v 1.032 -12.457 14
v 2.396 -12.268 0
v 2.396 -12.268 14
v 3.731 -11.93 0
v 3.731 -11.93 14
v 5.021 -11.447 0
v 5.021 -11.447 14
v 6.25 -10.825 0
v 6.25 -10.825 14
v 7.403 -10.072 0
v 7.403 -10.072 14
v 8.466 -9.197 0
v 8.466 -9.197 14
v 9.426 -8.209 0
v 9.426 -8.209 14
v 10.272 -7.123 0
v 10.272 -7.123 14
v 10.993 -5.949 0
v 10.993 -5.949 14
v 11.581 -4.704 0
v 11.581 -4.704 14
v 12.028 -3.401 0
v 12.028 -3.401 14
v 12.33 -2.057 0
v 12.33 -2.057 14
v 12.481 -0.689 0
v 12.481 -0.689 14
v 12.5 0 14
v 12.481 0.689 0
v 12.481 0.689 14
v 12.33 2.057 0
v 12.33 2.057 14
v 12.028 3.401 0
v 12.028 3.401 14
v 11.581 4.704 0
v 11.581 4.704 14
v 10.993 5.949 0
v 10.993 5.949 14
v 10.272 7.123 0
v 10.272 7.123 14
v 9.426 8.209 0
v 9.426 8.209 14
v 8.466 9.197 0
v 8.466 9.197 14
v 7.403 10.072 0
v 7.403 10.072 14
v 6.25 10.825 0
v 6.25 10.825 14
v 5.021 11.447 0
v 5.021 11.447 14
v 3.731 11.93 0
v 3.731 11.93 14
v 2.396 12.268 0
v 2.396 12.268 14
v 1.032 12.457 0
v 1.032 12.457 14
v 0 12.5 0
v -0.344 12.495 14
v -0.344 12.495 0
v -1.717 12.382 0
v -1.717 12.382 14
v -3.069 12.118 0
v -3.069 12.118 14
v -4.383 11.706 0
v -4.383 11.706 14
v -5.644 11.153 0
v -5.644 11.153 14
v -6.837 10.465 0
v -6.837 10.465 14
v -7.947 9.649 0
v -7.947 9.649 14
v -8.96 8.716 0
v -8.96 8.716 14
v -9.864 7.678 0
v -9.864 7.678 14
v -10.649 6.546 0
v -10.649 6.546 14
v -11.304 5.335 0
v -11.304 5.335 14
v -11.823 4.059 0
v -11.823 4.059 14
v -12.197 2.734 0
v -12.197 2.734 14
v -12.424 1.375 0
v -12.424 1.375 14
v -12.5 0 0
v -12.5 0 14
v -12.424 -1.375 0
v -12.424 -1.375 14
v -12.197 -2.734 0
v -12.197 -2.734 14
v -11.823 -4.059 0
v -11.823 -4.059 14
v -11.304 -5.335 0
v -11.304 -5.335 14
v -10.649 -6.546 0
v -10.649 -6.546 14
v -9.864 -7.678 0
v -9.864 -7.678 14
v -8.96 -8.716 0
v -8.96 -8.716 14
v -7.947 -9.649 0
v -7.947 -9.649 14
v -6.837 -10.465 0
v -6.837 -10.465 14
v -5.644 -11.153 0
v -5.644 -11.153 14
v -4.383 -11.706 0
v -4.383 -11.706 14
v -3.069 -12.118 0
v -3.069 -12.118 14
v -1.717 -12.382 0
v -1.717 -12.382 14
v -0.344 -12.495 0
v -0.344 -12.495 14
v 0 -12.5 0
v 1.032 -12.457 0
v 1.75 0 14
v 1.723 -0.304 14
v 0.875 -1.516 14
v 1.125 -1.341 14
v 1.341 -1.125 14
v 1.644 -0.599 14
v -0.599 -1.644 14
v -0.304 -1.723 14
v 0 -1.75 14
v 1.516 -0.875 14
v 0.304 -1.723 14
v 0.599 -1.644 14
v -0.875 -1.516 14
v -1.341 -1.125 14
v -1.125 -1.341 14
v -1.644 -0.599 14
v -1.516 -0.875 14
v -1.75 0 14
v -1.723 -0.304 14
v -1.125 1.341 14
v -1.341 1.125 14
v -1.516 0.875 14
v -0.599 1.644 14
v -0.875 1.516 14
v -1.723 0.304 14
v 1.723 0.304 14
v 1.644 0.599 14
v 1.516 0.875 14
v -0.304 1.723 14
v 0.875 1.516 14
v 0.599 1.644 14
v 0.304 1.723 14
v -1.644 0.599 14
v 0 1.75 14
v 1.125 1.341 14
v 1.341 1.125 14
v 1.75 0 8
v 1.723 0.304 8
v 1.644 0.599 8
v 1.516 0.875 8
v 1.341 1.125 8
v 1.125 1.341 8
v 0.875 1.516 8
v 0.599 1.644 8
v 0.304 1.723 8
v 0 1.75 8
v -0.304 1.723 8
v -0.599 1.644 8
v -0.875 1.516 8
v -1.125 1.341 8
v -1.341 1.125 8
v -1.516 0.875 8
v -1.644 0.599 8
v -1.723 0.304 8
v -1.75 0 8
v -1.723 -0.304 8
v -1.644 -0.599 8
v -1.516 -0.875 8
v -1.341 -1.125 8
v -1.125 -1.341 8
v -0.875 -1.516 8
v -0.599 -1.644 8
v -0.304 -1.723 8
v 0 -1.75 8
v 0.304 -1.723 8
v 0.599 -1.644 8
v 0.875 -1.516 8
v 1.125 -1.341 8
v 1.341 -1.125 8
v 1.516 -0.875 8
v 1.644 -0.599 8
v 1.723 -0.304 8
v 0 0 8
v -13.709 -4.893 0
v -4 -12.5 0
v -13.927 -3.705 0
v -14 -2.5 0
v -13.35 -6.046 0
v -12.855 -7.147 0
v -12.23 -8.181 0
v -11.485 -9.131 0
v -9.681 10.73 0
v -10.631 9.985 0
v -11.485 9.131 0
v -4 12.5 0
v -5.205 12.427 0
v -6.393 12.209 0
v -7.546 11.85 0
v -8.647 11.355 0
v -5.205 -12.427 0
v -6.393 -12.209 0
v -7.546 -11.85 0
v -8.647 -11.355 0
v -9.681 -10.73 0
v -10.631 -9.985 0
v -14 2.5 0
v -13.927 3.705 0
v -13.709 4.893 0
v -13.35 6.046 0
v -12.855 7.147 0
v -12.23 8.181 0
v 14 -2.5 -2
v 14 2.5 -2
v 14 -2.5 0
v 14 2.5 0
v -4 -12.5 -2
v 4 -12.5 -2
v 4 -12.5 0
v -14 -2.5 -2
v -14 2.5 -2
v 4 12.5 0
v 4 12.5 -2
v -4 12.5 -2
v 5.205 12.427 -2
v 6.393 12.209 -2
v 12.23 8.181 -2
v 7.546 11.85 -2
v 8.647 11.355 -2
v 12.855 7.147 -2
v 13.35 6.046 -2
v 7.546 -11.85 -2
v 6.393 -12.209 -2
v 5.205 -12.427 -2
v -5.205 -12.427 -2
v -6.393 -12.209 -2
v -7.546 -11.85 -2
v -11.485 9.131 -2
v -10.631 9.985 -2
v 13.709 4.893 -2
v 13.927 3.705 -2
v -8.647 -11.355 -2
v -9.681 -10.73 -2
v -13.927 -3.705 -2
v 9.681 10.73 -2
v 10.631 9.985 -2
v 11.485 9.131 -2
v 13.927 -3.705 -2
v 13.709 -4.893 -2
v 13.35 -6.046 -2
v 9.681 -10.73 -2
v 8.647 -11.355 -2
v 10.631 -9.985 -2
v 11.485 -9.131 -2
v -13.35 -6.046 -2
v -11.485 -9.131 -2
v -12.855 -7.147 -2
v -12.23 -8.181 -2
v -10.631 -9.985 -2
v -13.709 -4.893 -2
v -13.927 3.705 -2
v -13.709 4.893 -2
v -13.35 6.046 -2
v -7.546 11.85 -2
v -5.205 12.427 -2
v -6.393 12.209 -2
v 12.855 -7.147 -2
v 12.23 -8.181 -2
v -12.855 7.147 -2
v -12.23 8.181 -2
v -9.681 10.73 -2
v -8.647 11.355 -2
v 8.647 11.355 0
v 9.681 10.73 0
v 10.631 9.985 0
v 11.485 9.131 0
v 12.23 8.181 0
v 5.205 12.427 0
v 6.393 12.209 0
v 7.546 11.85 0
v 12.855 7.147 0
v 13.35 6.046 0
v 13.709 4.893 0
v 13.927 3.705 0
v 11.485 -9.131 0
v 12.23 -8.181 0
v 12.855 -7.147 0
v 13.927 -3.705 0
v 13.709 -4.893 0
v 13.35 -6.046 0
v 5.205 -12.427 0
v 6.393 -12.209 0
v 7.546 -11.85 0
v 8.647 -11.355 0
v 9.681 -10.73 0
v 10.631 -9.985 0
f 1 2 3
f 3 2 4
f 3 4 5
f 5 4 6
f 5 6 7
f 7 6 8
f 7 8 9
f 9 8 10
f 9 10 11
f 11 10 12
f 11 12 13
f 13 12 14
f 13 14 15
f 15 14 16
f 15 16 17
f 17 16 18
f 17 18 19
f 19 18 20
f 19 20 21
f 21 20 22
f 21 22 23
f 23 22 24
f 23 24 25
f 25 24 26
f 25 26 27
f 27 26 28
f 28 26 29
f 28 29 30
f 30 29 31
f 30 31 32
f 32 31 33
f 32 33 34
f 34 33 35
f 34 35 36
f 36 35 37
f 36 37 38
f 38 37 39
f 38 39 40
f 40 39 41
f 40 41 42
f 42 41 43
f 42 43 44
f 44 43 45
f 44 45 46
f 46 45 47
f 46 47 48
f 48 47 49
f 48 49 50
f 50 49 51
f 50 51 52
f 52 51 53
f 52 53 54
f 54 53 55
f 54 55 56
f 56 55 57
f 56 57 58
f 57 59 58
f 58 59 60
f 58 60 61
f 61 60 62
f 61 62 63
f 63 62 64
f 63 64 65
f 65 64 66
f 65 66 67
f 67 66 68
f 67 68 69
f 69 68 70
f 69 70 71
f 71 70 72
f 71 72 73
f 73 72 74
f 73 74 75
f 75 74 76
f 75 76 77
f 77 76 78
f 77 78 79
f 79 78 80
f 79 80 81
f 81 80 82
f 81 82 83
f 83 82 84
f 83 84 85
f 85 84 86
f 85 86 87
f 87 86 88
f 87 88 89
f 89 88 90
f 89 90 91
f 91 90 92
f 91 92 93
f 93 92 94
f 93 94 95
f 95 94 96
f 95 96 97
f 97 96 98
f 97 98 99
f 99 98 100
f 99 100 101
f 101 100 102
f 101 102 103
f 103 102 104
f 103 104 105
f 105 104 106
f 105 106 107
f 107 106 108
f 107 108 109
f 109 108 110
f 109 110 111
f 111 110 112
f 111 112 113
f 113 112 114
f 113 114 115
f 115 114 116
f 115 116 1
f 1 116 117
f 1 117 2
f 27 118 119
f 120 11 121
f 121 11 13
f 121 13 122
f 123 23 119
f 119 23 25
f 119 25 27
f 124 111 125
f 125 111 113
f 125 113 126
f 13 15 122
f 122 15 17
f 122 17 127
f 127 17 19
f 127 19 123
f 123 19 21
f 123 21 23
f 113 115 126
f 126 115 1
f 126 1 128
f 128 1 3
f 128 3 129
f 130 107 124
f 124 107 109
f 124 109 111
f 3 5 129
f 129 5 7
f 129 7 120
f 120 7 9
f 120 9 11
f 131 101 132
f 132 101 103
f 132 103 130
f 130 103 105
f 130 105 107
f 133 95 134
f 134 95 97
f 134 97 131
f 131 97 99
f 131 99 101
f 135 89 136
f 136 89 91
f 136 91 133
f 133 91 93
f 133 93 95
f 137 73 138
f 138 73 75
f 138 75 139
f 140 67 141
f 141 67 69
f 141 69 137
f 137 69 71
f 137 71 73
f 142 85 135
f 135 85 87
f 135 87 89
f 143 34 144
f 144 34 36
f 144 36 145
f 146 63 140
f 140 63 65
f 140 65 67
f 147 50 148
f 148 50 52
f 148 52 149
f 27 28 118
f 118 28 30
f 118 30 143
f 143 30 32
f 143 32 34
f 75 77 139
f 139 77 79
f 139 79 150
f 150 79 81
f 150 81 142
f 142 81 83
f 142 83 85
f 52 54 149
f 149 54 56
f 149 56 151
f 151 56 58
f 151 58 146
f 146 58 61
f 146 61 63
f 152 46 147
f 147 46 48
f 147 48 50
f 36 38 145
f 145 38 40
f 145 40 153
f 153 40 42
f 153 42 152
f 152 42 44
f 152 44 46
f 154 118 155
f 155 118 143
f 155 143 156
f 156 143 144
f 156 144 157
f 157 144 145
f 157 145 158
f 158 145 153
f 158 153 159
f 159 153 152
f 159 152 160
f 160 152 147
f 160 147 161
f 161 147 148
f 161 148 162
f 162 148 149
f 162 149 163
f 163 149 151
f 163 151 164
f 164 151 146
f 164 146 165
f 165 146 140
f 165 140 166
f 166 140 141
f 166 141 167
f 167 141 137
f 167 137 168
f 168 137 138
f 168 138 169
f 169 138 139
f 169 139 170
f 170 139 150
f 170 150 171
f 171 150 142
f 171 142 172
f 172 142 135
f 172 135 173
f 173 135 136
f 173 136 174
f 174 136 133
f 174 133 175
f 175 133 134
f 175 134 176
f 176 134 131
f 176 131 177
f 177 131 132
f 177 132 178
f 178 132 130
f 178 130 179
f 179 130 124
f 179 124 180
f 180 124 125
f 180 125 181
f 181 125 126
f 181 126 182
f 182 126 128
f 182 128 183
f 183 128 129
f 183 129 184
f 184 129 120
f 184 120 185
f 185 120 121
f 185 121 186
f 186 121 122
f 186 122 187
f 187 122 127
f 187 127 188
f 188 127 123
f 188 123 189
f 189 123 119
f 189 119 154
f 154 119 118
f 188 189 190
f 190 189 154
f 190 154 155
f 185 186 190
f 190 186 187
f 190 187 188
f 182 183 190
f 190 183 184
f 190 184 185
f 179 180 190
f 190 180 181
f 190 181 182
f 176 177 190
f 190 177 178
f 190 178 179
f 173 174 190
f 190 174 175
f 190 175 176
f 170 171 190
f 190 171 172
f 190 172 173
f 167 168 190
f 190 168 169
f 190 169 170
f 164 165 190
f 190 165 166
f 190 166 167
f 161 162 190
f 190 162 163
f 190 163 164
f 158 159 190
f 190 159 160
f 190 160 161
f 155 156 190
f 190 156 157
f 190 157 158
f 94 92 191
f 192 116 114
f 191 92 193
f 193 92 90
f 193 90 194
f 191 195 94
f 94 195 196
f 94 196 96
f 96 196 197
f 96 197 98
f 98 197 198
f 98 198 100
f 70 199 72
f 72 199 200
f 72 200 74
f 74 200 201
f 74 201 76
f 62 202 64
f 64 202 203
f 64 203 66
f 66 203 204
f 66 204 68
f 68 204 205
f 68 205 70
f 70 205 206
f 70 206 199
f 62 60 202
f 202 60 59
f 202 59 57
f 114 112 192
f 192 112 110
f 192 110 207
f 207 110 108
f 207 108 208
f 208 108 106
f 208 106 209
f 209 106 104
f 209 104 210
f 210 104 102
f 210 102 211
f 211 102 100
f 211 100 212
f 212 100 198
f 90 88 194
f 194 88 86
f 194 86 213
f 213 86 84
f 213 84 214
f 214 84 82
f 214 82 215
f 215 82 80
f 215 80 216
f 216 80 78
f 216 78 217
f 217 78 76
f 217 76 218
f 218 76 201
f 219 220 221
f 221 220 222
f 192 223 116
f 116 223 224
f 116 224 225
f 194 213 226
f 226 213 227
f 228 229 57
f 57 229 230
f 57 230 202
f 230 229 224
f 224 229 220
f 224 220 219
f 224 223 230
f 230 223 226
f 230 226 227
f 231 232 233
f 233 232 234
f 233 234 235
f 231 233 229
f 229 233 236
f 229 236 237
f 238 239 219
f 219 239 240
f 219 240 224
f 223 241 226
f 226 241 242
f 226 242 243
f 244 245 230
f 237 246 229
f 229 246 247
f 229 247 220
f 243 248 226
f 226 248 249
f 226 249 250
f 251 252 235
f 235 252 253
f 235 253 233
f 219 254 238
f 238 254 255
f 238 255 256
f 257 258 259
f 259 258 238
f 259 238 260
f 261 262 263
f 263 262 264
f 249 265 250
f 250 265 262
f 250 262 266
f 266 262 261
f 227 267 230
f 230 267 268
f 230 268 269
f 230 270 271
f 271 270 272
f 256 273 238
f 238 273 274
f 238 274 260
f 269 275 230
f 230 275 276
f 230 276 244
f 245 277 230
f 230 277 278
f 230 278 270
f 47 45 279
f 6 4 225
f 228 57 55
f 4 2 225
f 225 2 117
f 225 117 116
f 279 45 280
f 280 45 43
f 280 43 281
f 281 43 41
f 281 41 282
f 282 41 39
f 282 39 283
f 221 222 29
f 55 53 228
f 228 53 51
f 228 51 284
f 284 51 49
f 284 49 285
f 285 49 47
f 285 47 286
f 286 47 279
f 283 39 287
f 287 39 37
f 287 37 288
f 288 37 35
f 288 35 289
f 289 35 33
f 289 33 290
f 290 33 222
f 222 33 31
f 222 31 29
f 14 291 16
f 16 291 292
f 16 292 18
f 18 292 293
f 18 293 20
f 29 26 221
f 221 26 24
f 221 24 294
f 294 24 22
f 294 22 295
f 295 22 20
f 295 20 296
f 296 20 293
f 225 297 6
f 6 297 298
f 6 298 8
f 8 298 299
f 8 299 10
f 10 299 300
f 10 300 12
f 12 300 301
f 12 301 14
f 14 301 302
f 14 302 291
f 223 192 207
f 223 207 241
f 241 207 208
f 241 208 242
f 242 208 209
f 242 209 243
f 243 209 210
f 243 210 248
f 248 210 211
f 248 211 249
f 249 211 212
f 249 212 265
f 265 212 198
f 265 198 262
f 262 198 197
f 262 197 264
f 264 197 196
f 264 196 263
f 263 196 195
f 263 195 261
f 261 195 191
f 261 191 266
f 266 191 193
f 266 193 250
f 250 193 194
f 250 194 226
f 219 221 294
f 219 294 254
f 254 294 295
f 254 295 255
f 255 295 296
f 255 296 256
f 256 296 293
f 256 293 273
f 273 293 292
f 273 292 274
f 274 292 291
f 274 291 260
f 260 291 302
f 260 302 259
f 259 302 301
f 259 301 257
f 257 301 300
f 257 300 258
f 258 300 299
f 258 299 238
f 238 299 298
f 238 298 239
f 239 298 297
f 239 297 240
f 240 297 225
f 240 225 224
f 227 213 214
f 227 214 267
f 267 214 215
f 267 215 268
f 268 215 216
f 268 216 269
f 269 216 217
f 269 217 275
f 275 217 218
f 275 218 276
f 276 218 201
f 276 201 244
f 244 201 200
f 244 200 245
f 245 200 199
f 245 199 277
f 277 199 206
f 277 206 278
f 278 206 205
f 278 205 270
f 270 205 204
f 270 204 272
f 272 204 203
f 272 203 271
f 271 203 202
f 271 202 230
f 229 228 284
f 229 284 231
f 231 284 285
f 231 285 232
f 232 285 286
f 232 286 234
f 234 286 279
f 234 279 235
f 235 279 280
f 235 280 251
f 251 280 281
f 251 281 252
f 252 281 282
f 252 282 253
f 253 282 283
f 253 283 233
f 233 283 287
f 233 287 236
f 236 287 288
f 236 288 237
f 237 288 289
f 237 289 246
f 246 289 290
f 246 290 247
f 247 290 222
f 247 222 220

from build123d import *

# Parameters (mm, degrees)
SKETCH_1_R          = 12.5
EXTRUDE_1_DEPTH     = 14
SKETCH_2_R          = 1.75
CUT_EXTRUDE_1_DEPTH = 6
SKETCH_3_W          = 28
SKETCH_3_H          = 25
EXTRUDE_2_DEPTH     = 2
FILLET_1_R          = 10


with BuildPart() as part:
    # ｽｹｯﾁ1 → ﾎﾞｽ - 押し出し1 (new body)
    with BuildSketch(Plane.XY):
        Circle(SKETCH_1_R)
    extrude(amount=EXTRUDE_1_DEPTH)

    # ｽｹｯﾁ2 → ｶｯﾄ - 押し出し1 (cut)
    with BuildSketch(Plane.XY.offset(14)):
        Circle(SKETCH_2_R)
    extrude(amount=-CUT_EXTRUDE_1_DEPTH, mode=Mode.SUBTRACT)

    # ｽｹｯﾁ3 → ﾎﾞｽ - 押し出し2 (add)
    with BuildSketch(Plane(origin=(0, 0, 0), x_dir=(-1, 0, 0), z_dir=(0, 0, -1))):
        Rectangle(SKETCH_3_W, SKETCH_3_H)
    extrude(amount=EXTRUDE_2_DEPTH)

    # ﾌｨﾚｯﾄ1
    fillet_1_edges = [part.edges().sort_by_distance(p)[0] for p in [
        (14, 12.5, -1),
        (14, -12.5, -1),
        (-14, -12.5, -1),
        (-14, 12.5, -1),
    ]]
    fillet(fillet_1_edges, radius=FILLET_1_R)


solid = part.part
